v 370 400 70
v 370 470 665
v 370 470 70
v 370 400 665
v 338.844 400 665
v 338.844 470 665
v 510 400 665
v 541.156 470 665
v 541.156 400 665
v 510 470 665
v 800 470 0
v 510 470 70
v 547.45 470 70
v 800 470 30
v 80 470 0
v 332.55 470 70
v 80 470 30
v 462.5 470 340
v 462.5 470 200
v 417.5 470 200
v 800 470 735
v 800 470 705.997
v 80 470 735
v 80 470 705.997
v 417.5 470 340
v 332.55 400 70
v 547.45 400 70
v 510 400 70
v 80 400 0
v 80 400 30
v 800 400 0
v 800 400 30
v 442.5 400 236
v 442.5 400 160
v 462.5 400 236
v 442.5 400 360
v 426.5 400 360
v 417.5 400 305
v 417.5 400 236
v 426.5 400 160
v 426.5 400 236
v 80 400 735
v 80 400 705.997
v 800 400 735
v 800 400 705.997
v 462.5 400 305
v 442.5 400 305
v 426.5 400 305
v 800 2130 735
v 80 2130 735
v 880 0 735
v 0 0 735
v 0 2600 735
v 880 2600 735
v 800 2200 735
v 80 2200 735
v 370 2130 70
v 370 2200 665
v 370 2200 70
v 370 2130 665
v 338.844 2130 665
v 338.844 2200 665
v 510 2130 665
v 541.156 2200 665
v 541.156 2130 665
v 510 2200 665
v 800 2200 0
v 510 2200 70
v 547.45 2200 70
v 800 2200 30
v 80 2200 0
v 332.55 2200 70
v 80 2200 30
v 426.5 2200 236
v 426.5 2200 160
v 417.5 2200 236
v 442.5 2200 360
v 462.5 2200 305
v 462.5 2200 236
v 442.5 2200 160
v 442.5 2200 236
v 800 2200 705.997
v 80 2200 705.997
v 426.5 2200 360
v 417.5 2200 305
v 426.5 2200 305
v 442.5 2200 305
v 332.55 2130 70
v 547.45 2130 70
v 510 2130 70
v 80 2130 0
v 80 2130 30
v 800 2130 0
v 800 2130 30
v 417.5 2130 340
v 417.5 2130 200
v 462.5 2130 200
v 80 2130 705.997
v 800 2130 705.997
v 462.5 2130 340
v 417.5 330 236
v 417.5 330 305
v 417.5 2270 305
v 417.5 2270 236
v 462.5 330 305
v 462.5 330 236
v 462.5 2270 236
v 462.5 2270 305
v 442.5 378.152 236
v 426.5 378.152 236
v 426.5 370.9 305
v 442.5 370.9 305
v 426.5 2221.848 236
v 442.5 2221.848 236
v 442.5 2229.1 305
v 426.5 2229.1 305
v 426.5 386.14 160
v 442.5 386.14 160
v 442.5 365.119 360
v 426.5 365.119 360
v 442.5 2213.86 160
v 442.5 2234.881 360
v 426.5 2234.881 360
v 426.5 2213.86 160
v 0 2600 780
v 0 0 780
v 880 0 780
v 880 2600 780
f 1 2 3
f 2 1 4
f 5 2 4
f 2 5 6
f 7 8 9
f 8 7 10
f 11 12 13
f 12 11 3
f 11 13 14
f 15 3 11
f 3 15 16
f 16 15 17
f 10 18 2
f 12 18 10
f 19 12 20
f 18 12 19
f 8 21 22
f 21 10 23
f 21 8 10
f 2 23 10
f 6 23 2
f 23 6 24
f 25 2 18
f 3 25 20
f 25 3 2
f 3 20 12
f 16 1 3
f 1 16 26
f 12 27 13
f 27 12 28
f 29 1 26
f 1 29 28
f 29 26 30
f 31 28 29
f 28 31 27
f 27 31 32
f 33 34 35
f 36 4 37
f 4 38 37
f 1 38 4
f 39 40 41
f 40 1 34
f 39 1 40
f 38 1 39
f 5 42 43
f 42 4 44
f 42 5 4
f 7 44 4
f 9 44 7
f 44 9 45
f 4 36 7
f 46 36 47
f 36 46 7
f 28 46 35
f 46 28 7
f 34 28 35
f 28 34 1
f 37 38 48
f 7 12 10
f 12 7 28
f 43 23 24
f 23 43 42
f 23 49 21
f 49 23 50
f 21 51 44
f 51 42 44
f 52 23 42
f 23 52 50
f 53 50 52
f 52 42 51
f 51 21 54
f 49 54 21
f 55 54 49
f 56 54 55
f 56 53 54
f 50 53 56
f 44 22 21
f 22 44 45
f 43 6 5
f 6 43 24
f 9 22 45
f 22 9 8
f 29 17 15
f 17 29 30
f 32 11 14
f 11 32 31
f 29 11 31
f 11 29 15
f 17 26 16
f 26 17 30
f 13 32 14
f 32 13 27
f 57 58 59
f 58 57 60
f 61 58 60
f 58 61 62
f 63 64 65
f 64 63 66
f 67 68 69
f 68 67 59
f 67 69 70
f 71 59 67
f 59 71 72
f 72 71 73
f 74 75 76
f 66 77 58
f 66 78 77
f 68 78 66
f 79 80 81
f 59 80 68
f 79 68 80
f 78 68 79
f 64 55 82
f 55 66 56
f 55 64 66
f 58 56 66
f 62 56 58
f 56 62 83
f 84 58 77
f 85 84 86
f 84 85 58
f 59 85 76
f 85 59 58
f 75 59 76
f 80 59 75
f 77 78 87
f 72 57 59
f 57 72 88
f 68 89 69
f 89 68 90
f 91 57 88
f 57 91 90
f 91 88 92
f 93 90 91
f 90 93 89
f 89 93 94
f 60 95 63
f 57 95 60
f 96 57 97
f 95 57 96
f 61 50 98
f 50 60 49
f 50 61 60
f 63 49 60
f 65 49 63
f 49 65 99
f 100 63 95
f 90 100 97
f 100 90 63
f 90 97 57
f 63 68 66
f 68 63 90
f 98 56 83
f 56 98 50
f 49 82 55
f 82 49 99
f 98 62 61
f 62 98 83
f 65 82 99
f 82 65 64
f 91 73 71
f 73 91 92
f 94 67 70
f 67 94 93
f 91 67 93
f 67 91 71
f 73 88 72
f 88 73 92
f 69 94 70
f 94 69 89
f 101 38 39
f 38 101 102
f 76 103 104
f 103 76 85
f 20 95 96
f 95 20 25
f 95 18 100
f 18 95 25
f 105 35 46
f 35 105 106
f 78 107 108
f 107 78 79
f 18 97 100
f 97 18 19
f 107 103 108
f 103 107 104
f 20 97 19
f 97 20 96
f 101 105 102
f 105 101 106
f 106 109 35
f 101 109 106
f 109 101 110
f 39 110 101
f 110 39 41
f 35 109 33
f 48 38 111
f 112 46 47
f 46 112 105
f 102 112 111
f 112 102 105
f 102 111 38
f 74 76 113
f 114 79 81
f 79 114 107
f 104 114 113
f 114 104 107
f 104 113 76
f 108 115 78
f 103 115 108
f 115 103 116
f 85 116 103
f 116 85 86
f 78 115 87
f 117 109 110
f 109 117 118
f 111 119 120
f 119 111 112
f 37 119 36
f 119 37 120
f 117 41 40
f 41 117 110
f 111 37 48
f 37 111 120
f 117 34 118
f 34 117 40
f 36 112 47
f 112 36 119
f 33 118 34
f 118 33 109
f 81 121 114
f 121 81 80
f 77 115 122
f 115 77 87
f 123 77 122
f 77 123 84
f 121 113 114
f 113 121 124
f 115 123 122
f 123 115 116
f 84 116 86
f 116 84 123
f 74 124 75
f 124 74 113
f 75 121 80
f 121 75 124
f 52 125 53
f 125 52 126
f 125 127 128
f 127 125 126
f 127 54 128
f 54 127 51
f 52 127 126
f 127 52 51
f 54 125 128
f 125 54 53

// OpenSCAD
// file: ../utils/own/helpers.scad
module Cube(width, length, height) {
  color("#ffeb91")
  cube([width, length, height]);
}

module Rotate(rotation = [0, 0, 0], origin = [0, 0, 0], debug = false) {
  translate(origin)
  rotate(rotation)
  translate(-origin)
  children();

  if (debug) {
    translate(origin) 
    #sphere(r=20);
  }
}

module Debug(hide = false, transparent = false, translate_x = false, translate_y = false, translate_z = false) {
  if (debug) {
    if (transparent) {
      %children();
    } else {
      children();
    }
  } else {
  children();
  }
}
// main file
use <../utils/own/helpers.scad>

$fn = 50;

// grillbord höjd 85

//

echo(str(""));
echo(str(""));
echo(str(""));

// Brown()
// translate([0, -2000, 0]) 
// BBQ_Table();

// translate([800, 0, 0]) 
Trestle_Table();

// translate([-800, 0, 0]) 
// Trestle_Table_Wide();

// translate([0, 3000, 0]) 
// Cross_Leg_Table();

echo(str(""));
echo(str(""));
echo(str(""));

//

module BBQ_Table() {
  top_width = 800;
  top_length = 800;
  top_thickness = 70;

  leg_height = 850; // TODO: measure
  leg_thickness = 70;
  leg_offset = 100; // distance from edge

  stretcher_offset = 300; // distance from floor

  // Top
  translate([0, 0, leg_height]) 
  Cube(top_width, top_length, top_thickness);

  // Top extensions
  // translate([top_width, 0, leg_height])
  // Rotate([0, 90 - 90*sin($t*180), 0])
  // Cube(top_width/2, top_length, top_thickness);

  // translate([-top_width/2, 0, leg_height])
  // Rotate([0, -90 + 90*sin($t*180), 0], [top_width/2, 0, 0])
  // Cube(top_width/2, top_length, top_thickness);

  // Legs
  translate([leg_offset, leg_offset, 0]) 
  Cube(leg_thickness, leg_thickness, leg_height);

  translate([top_width - leg_offset - leg_thickness, leg_offset, 0]) 
  Cube(leg_thickness, leg_thickness, leg_height);

  translate([leg_offset, top_width - leg_offset - leg_thickness, 0]) 
  Cube(leg_thickness, leg_thickness, leg_height);

  translate([top_width - leg_offset - leg_thickness, top_width - leg_offset - leg_thickness, 0]) 
  Cube(leg_thickness, leg_thickness, leg_height);

  // Apron
  apron_thickness = 30; // TODO: measure
  apron_height = 60; // TODO: measure
  translate([leg_offset + leg_thickness, leg_offset + leg_thickness/2 - apron_thickness/2, leg_height - apron_height]) 
  Cube(top_width - leg_offset*2 - leg_thickness*2, apron_thickness, apron_height);

  translate([leg_offset + leg_thickness/2 - apron_thickness/2, leg_offset + leg_thickness, leg_height - apron_height]) 
  Cube(apron_thickness, top_width - leg_offset*2 - leg_thickness*2, apron_height);

  translate([leg_offset + leg_thickness, top_width - leg_offset - apron_thickness - leg_thickness/2 + apron_thickness/2, leg_height - apron_height]) 
  Cube(top_width - leg_offset*2 - leg_thickness*2, apron_thickness, apron_height);

  translate([top_width - leg_offset - apron_thickness - leg_thickness/2 + apron_thickness/2, leg_offset + leg_thickness, leg_height - apron_height]) 
  Cube(apron_thickness, top_width - leg_offset*2 - leg_thickness*2, apron_height);

  // Apron / Top connectors
  connector_width = 40;
  connector_length = 30;
  connector_height = 20;
  
  translate([300, 150, leg_height - connector_height])
  Cube(connector_width, connector_length, connector_height);
  translate([550, 150, leg_height - connector_height])
  Cube(connector_width, connector_length, connector_height);

  translate([300, top_width - 180, leg_height - connector_height])
  Cube(connector_width, connector_length, connector_height);
  translate([550, top_width - 180, leg_height - connector_height])
  Cube(connector_width, connector_length, connector_height);

  translate([150, 300, leg_height - connector_height])
  Cube(connector_length, connector_width, connector_height);
  translate([150, 550, leg_height - connector_height])
  Cube(connector_length, connector_width, connector_height);

  translate([top_width - 180, 300, leg_height - connector_height])
  Cube(connector_length, connector_width, connector_height);
  translate([top_width - 180, 550, leg_height - connector_height])
  Cube(connector_length, connector_width, connector_height);

  // Stretchers
  stretcher_thickness = 30; // TODO: measure
  stretcher_height = 60; // TODO: measure
  translate([leg_offset + leg_thickness, leg_offset + leg_thickness/2 - stretcher_thickness/2, stretcher_offset - stretcher_height]) 
  Cube(top_width - leg_offset*2 - leg_thickness*2, stretcher_thickness, stretcher_height);

  translate([leg_offset + leg_thickness/2 - stretcher_thickness/2, leg_offset + leg_thickness, stretcher_offset - stretcher_height]) 
  Cube(stretcher_thickness, top_width - leg_offset*2 - leg_thickness*2, stretcher_height);

  translate([leg_offset + leg_thickness, top_width - leg_offset - stretcher_thickness - leg_thickness/2 + stretcher_thickness/2, stretcher_offset - stretcher_height]) 
  Cube(top_width - leg_offset*2 - leg_thickness*2, stretcher_thickness, stretcher_height);

  translate([top_width - leg_offset - stretcher_thickness - leg_thickness/2 + stretcher_thickness/2, leg_offset + leg_thickness, stretcher_offset - stretcher_height]) 
  Cube(stretcher_thickness, top_width - leg_offset*2 - leg_thickness*2, stretcher_height);

  // Lower top (?)
  translate([leg_offset + leg_thickness/2, leg_offset + leg_thickness/2, stretcher_offset - 45]) 
  Cube(top_width - leg_offset*2 - leg_thickness, top_width - leg_offset*2 - leg_thickness, 45);
}

module Trestle_Table() {

  // leg material (70x70) =  
  // leg top support material (70x70) = 560
  // leg foot material (70x70) = 560

  // leg material (70x70) = 1230
  // leg top support material (70x70) = 560
  // leg foot material (70x70) = 560

  // stretcher material (45x70) = 4280

  // BOM
  // 70x70
  //   615 x 4
  //   = 2460
  //   560 x 4
  //   = 2260
  // 45x70
  //   2140 x 2
  //   = 4280

  height = 780;
  
  top_width = 880;
  top_length = 2600;
  top_thickness = 45;

  // echo(str("top: 34x70 = ", (stretcher_length*2*2) / 1000, "m"));

  leg_height = height - top_thickness;
  leg_thickness = 70;
  leg_thickness_x = 70;
  // leg_thickness_y = 45;
  leg_thickness_y = 70;
  leg_offset_x = 80; // distance from edge
  // leg_offset_y = 300; // distance from edge
  leg_offset_y = 400; // distance from edge

  stretcher_offset = 200; // distance from floor
  stretcher_width = 45;

  // top
  Brown()
  translate([0, 0, leg_height]) 
  Cube(top_width, top_length, top_thickness);

  Brown()
  translate([0, leg_offset_y, 0]) 
  Leg();
  Brown()
  translate([0, top_length - leg_thickness - leg_offset_y, 0]) 
  Leg();

  // stretcher
  translate([top_width/2 - stretcher_width/2, leg_offset_y - leg_thickness, stretcher_offset]) {
    Brown()
    difference() {
      Cube(stretcher_width, top_length - leg_offset_y*2 + leg_thickness*2, leg_thickness*2);
      echo(str("stretcher material (45x70) = ", (top_length - leg_offset_y*2 + leg_thickness*2) * 2));

      translate([-1, -1, -1]) 
      Cube(stretcher_width+2, leg_thickness*2, leg_thickness/2+2);
      translate([-1, -1, leg_thickness*2-leg_thickness/2]) 
      Cube(stretcher_width+2, leg_thickness*2, leg_thickness+1);

      translate([-1, top_length - leg_offset_y*2 + 1, -1]) 
      Cube(stretcher_width+2, leg_thickness*2, leg_thickness/2+2);
      translate([-1, top_length - leg_offset_y*2 + 1, leg_thickness*2-leg_thickness/2]) 
      Cube(stretcher_width+2, leg_thickness*2, leg_thickness+1);
    }

    translate([9, 30, -40]) 
    Tap();

    translate([25, top_length - leg_offset_y*2 + leg_thickness + 40, -40]) 
    Rotate([0, 0, 180])
    Tap();

    // translate([0, 0, 0]) 
    // Tap();
  }


  module Tap() {
    color("#631")
    render()
    difference() {
      width = 16;
      length = 40;
      height = 200;
      Cube(width, length, height);
      translate([0, -16, -20]) 
      scale(1.1) 
      rotate([6, 0, 0]) 
      Cube(width, length, height);
    }
  }

  module Leg() {
    // leg
    echo(str("leg material (70x70) = ", (leg_height-leg_thickness * 2) * 2));
    translate([top_width/2 - leg_thickness, 0, leg_thickness]) {
      Cube(leg_thickness, leg_thickness_y, leg_height-leg_thickness*2); // 615 (x 4 = 2460)
      translate([leg_thickness, 0, 0]) 
      Cube(leg_thickness, leg_thickness_y, leg_height-leg_thickness*2);
    }
    // top support
    echo(str("leg top support material (70x70) = ", top_width-leg_offset_x*2));
    translate([leg_offset_x, 0, leg_height-leg_thickness]) 
    difference() {
      Cube(top_width-leg_offset_x*2, leg_thickness_y, leg_thickness); // 

      translate([-12, -1, -30]) 
      rotate([0, 9, 0]) 
      Cube((top_width-leg_offset_x*2)/2 + 2, leg_thickness_y + 2, leg_thickness + 2);

      translate([(top_width-leg_offset_x*2) + 12, leg_thickness + 1, -30]) 
      rotate([0, 9, 180]) 
      Cube((top_width-leg_offset_x*2)/2 + 2, leg_thickness_y + 2, leg_thickness + 2);
    }
    // foot
    echo(str("leg foot material (70x70) = ", top_width-leg_offset_x*2));
    translate([leg_offset_x, 0, 0]) 
    difference() {
      Cube(top_width-leg_offset_x*2, leg_thickness_y, leg_thickness);

      translate([0, -1, 30]) 
      rotate([0, -9, 0]) 
      Cube((top_width-leg_offset_x*2)/2 + 2, leg_thickness_y + 2, leg_thickness + 2);

      translate([(top_width-leg_offset_x*2), leg_thickness + 1, 30]) 
      rotate([0, -9, 180]) 
      Cube((top_width-leg_offset_x*2)/2 + 2, leg_thickness_y + 2, leg_thickness + 2);
    }
  }
}

module Trestle_Table_Wide() {
  top_width = 1100;
  top_length = 2600;
  top_thickness = 45;

  // echo(str("top: 34x70 = ", (stretcher_length*2*2) / 1000, "m"));

  leg_height = 800; // TODO: measure
  leg_thickness = 70;
  leg_thickness_x = 70;
  // leg_thickness_y = 45;
  leg_thickness_y = 70;
  leg_offset_x = 160; // distance from edge
  leg_offset_y = 300; // distance from edge

  stretcher_offset = 200; // distance from floor

  // top
  Brown()
  translate([0, 0, leg_height]) 
  Cube(top_width, top_length, top_thickness);

  Brown()
  translate([0, leg_offset_y, 0]) 
  Leg();
  Brown()
  translate([0, top_length - leg_thickness - leg_offset_y, 0]) 
  Leg();

  // stretcher
  translate([top_width/2 - 34/2, leg_offset_y - leg_thickness, stretcher_offset]) {
    Brown()
    difference() {
      Cube(34, top_length - leg_offset_y*2 + leg_thickness*2, leg_thickness*2);

      translate([-1, -1, -1]) 
      Cube(34+2, leg_thickness*2, leg_thickness/2+2);
      translate([-1, -1, leg_thickness*2-leg_thickness/2]) 
      Cube(34+2, leg_thickness*2, leg_thickness+1);

      translate([-1, top_length - leg_offset_y*2 + 1, -1]) 
      Cube(34+2, leg_thickness*2, leg_thickness/2+2);
      translate([-1, top_length - leg_offset_y*2 + 1, leg_thickness*2-leg_thickness/2]) 
      Cube(34+2, leg_thickness*2, leg_thickness+1);
    }

    translate([9, 30, -40]) 
    Tap();

    translate([25, top_length - leg_offset_y*2 + leg_thickness + 40, -40]) 
    Rotate([0, 0, 180])
    Tap();

    // translate([0, 0, 0]) 
    // Tap();
  }


  module Tap() {
    color("#631")
    render()
    difference() {
      width = 16;
      length = 40;
      height = 200;
      Cube(width, length, height);
      translate([0, -16, -20]) 
      scale(1.1) 
      rotate([6, 0, 0]) 
      Cube(width, length, height);
    }
  }

  module Leg() {
    translate([top_width/2 - leg_thickness, 0, leg_thickness]) {
      Cube(leg_thickness, leg_thickness_y, leg_height-leg_thickness*2);
      translate([leg_thickness, 0, 0]) 
      Cube(leg_thickness, leg_thickness_y, leg_height-leg_thickness*2);
    }
    // top support
    translate([leg_offset_x, 0, leg_height-leg_thickness]) 
    Cube(top_width-leg_offset_x*2, leg_thickness_y, leg_thickness);
    // foot
    translate([leg_offset_x, 0, 0]) 
    Cube(top_width-leg_offset_x*2, leg_thickness_y, leg_thickness);
  }
}

module Cross_Leg_Table() {
  top_width = 1000;
  top_length = 2400;
  top_thickness = 34;
  
  // echo(str("top: 34x70 = ", (stretcher_length*2*2) / 1000, "m"));

  leg_height = 800; // TODO: measure
  leg_thickness = 70;
  leg_offset = 300; // distance from edge

  stretcher_offset = 430; // distance from floor

  // top
  translate([0, 0, leg_height]) 
  Cube(top_width, top_length, top_thickness);

  translate([0, leg_offset, 0]) 
  Leg();
  translate([0, top_length - leg_thickness - leg_offset, 0]) 
  Leg();

  // stretcher
  translate([top_width/2 - leg_thickness/2, leg_offset - leg_thickness, stretcher_offset]) 
  Cube(leg_thickness, top_length - leg_offset*2 + leg_thickness*2, leg_thickness);

  module Leg() {
    difference() {
      union() {
        translate([120, 0, 142.4]) 
        Rotate([0, 45, 0])
        Cube(leg_thickness, leg_thickness, 1000);
        translate([820, 0, 92.9]) 
        Rotate([0, -45, 0]) {
          Cube(leg_thickness, leg_thickness, 1000);
          translate([leg_thickness/2, leg_thickness/2, 500]) 
          rotate([90, 0, 0]) 
          #cylinder(r=10, h=leg_thickness+20, center=true);
        }
      }
      translate([0, -1, leg_height]) 
      Cube(top_width, leg_thickness+2, 100);
    }
  }
}

//

module Brown() {
  // color("#B84")
  color("#D93")
  children();
}
